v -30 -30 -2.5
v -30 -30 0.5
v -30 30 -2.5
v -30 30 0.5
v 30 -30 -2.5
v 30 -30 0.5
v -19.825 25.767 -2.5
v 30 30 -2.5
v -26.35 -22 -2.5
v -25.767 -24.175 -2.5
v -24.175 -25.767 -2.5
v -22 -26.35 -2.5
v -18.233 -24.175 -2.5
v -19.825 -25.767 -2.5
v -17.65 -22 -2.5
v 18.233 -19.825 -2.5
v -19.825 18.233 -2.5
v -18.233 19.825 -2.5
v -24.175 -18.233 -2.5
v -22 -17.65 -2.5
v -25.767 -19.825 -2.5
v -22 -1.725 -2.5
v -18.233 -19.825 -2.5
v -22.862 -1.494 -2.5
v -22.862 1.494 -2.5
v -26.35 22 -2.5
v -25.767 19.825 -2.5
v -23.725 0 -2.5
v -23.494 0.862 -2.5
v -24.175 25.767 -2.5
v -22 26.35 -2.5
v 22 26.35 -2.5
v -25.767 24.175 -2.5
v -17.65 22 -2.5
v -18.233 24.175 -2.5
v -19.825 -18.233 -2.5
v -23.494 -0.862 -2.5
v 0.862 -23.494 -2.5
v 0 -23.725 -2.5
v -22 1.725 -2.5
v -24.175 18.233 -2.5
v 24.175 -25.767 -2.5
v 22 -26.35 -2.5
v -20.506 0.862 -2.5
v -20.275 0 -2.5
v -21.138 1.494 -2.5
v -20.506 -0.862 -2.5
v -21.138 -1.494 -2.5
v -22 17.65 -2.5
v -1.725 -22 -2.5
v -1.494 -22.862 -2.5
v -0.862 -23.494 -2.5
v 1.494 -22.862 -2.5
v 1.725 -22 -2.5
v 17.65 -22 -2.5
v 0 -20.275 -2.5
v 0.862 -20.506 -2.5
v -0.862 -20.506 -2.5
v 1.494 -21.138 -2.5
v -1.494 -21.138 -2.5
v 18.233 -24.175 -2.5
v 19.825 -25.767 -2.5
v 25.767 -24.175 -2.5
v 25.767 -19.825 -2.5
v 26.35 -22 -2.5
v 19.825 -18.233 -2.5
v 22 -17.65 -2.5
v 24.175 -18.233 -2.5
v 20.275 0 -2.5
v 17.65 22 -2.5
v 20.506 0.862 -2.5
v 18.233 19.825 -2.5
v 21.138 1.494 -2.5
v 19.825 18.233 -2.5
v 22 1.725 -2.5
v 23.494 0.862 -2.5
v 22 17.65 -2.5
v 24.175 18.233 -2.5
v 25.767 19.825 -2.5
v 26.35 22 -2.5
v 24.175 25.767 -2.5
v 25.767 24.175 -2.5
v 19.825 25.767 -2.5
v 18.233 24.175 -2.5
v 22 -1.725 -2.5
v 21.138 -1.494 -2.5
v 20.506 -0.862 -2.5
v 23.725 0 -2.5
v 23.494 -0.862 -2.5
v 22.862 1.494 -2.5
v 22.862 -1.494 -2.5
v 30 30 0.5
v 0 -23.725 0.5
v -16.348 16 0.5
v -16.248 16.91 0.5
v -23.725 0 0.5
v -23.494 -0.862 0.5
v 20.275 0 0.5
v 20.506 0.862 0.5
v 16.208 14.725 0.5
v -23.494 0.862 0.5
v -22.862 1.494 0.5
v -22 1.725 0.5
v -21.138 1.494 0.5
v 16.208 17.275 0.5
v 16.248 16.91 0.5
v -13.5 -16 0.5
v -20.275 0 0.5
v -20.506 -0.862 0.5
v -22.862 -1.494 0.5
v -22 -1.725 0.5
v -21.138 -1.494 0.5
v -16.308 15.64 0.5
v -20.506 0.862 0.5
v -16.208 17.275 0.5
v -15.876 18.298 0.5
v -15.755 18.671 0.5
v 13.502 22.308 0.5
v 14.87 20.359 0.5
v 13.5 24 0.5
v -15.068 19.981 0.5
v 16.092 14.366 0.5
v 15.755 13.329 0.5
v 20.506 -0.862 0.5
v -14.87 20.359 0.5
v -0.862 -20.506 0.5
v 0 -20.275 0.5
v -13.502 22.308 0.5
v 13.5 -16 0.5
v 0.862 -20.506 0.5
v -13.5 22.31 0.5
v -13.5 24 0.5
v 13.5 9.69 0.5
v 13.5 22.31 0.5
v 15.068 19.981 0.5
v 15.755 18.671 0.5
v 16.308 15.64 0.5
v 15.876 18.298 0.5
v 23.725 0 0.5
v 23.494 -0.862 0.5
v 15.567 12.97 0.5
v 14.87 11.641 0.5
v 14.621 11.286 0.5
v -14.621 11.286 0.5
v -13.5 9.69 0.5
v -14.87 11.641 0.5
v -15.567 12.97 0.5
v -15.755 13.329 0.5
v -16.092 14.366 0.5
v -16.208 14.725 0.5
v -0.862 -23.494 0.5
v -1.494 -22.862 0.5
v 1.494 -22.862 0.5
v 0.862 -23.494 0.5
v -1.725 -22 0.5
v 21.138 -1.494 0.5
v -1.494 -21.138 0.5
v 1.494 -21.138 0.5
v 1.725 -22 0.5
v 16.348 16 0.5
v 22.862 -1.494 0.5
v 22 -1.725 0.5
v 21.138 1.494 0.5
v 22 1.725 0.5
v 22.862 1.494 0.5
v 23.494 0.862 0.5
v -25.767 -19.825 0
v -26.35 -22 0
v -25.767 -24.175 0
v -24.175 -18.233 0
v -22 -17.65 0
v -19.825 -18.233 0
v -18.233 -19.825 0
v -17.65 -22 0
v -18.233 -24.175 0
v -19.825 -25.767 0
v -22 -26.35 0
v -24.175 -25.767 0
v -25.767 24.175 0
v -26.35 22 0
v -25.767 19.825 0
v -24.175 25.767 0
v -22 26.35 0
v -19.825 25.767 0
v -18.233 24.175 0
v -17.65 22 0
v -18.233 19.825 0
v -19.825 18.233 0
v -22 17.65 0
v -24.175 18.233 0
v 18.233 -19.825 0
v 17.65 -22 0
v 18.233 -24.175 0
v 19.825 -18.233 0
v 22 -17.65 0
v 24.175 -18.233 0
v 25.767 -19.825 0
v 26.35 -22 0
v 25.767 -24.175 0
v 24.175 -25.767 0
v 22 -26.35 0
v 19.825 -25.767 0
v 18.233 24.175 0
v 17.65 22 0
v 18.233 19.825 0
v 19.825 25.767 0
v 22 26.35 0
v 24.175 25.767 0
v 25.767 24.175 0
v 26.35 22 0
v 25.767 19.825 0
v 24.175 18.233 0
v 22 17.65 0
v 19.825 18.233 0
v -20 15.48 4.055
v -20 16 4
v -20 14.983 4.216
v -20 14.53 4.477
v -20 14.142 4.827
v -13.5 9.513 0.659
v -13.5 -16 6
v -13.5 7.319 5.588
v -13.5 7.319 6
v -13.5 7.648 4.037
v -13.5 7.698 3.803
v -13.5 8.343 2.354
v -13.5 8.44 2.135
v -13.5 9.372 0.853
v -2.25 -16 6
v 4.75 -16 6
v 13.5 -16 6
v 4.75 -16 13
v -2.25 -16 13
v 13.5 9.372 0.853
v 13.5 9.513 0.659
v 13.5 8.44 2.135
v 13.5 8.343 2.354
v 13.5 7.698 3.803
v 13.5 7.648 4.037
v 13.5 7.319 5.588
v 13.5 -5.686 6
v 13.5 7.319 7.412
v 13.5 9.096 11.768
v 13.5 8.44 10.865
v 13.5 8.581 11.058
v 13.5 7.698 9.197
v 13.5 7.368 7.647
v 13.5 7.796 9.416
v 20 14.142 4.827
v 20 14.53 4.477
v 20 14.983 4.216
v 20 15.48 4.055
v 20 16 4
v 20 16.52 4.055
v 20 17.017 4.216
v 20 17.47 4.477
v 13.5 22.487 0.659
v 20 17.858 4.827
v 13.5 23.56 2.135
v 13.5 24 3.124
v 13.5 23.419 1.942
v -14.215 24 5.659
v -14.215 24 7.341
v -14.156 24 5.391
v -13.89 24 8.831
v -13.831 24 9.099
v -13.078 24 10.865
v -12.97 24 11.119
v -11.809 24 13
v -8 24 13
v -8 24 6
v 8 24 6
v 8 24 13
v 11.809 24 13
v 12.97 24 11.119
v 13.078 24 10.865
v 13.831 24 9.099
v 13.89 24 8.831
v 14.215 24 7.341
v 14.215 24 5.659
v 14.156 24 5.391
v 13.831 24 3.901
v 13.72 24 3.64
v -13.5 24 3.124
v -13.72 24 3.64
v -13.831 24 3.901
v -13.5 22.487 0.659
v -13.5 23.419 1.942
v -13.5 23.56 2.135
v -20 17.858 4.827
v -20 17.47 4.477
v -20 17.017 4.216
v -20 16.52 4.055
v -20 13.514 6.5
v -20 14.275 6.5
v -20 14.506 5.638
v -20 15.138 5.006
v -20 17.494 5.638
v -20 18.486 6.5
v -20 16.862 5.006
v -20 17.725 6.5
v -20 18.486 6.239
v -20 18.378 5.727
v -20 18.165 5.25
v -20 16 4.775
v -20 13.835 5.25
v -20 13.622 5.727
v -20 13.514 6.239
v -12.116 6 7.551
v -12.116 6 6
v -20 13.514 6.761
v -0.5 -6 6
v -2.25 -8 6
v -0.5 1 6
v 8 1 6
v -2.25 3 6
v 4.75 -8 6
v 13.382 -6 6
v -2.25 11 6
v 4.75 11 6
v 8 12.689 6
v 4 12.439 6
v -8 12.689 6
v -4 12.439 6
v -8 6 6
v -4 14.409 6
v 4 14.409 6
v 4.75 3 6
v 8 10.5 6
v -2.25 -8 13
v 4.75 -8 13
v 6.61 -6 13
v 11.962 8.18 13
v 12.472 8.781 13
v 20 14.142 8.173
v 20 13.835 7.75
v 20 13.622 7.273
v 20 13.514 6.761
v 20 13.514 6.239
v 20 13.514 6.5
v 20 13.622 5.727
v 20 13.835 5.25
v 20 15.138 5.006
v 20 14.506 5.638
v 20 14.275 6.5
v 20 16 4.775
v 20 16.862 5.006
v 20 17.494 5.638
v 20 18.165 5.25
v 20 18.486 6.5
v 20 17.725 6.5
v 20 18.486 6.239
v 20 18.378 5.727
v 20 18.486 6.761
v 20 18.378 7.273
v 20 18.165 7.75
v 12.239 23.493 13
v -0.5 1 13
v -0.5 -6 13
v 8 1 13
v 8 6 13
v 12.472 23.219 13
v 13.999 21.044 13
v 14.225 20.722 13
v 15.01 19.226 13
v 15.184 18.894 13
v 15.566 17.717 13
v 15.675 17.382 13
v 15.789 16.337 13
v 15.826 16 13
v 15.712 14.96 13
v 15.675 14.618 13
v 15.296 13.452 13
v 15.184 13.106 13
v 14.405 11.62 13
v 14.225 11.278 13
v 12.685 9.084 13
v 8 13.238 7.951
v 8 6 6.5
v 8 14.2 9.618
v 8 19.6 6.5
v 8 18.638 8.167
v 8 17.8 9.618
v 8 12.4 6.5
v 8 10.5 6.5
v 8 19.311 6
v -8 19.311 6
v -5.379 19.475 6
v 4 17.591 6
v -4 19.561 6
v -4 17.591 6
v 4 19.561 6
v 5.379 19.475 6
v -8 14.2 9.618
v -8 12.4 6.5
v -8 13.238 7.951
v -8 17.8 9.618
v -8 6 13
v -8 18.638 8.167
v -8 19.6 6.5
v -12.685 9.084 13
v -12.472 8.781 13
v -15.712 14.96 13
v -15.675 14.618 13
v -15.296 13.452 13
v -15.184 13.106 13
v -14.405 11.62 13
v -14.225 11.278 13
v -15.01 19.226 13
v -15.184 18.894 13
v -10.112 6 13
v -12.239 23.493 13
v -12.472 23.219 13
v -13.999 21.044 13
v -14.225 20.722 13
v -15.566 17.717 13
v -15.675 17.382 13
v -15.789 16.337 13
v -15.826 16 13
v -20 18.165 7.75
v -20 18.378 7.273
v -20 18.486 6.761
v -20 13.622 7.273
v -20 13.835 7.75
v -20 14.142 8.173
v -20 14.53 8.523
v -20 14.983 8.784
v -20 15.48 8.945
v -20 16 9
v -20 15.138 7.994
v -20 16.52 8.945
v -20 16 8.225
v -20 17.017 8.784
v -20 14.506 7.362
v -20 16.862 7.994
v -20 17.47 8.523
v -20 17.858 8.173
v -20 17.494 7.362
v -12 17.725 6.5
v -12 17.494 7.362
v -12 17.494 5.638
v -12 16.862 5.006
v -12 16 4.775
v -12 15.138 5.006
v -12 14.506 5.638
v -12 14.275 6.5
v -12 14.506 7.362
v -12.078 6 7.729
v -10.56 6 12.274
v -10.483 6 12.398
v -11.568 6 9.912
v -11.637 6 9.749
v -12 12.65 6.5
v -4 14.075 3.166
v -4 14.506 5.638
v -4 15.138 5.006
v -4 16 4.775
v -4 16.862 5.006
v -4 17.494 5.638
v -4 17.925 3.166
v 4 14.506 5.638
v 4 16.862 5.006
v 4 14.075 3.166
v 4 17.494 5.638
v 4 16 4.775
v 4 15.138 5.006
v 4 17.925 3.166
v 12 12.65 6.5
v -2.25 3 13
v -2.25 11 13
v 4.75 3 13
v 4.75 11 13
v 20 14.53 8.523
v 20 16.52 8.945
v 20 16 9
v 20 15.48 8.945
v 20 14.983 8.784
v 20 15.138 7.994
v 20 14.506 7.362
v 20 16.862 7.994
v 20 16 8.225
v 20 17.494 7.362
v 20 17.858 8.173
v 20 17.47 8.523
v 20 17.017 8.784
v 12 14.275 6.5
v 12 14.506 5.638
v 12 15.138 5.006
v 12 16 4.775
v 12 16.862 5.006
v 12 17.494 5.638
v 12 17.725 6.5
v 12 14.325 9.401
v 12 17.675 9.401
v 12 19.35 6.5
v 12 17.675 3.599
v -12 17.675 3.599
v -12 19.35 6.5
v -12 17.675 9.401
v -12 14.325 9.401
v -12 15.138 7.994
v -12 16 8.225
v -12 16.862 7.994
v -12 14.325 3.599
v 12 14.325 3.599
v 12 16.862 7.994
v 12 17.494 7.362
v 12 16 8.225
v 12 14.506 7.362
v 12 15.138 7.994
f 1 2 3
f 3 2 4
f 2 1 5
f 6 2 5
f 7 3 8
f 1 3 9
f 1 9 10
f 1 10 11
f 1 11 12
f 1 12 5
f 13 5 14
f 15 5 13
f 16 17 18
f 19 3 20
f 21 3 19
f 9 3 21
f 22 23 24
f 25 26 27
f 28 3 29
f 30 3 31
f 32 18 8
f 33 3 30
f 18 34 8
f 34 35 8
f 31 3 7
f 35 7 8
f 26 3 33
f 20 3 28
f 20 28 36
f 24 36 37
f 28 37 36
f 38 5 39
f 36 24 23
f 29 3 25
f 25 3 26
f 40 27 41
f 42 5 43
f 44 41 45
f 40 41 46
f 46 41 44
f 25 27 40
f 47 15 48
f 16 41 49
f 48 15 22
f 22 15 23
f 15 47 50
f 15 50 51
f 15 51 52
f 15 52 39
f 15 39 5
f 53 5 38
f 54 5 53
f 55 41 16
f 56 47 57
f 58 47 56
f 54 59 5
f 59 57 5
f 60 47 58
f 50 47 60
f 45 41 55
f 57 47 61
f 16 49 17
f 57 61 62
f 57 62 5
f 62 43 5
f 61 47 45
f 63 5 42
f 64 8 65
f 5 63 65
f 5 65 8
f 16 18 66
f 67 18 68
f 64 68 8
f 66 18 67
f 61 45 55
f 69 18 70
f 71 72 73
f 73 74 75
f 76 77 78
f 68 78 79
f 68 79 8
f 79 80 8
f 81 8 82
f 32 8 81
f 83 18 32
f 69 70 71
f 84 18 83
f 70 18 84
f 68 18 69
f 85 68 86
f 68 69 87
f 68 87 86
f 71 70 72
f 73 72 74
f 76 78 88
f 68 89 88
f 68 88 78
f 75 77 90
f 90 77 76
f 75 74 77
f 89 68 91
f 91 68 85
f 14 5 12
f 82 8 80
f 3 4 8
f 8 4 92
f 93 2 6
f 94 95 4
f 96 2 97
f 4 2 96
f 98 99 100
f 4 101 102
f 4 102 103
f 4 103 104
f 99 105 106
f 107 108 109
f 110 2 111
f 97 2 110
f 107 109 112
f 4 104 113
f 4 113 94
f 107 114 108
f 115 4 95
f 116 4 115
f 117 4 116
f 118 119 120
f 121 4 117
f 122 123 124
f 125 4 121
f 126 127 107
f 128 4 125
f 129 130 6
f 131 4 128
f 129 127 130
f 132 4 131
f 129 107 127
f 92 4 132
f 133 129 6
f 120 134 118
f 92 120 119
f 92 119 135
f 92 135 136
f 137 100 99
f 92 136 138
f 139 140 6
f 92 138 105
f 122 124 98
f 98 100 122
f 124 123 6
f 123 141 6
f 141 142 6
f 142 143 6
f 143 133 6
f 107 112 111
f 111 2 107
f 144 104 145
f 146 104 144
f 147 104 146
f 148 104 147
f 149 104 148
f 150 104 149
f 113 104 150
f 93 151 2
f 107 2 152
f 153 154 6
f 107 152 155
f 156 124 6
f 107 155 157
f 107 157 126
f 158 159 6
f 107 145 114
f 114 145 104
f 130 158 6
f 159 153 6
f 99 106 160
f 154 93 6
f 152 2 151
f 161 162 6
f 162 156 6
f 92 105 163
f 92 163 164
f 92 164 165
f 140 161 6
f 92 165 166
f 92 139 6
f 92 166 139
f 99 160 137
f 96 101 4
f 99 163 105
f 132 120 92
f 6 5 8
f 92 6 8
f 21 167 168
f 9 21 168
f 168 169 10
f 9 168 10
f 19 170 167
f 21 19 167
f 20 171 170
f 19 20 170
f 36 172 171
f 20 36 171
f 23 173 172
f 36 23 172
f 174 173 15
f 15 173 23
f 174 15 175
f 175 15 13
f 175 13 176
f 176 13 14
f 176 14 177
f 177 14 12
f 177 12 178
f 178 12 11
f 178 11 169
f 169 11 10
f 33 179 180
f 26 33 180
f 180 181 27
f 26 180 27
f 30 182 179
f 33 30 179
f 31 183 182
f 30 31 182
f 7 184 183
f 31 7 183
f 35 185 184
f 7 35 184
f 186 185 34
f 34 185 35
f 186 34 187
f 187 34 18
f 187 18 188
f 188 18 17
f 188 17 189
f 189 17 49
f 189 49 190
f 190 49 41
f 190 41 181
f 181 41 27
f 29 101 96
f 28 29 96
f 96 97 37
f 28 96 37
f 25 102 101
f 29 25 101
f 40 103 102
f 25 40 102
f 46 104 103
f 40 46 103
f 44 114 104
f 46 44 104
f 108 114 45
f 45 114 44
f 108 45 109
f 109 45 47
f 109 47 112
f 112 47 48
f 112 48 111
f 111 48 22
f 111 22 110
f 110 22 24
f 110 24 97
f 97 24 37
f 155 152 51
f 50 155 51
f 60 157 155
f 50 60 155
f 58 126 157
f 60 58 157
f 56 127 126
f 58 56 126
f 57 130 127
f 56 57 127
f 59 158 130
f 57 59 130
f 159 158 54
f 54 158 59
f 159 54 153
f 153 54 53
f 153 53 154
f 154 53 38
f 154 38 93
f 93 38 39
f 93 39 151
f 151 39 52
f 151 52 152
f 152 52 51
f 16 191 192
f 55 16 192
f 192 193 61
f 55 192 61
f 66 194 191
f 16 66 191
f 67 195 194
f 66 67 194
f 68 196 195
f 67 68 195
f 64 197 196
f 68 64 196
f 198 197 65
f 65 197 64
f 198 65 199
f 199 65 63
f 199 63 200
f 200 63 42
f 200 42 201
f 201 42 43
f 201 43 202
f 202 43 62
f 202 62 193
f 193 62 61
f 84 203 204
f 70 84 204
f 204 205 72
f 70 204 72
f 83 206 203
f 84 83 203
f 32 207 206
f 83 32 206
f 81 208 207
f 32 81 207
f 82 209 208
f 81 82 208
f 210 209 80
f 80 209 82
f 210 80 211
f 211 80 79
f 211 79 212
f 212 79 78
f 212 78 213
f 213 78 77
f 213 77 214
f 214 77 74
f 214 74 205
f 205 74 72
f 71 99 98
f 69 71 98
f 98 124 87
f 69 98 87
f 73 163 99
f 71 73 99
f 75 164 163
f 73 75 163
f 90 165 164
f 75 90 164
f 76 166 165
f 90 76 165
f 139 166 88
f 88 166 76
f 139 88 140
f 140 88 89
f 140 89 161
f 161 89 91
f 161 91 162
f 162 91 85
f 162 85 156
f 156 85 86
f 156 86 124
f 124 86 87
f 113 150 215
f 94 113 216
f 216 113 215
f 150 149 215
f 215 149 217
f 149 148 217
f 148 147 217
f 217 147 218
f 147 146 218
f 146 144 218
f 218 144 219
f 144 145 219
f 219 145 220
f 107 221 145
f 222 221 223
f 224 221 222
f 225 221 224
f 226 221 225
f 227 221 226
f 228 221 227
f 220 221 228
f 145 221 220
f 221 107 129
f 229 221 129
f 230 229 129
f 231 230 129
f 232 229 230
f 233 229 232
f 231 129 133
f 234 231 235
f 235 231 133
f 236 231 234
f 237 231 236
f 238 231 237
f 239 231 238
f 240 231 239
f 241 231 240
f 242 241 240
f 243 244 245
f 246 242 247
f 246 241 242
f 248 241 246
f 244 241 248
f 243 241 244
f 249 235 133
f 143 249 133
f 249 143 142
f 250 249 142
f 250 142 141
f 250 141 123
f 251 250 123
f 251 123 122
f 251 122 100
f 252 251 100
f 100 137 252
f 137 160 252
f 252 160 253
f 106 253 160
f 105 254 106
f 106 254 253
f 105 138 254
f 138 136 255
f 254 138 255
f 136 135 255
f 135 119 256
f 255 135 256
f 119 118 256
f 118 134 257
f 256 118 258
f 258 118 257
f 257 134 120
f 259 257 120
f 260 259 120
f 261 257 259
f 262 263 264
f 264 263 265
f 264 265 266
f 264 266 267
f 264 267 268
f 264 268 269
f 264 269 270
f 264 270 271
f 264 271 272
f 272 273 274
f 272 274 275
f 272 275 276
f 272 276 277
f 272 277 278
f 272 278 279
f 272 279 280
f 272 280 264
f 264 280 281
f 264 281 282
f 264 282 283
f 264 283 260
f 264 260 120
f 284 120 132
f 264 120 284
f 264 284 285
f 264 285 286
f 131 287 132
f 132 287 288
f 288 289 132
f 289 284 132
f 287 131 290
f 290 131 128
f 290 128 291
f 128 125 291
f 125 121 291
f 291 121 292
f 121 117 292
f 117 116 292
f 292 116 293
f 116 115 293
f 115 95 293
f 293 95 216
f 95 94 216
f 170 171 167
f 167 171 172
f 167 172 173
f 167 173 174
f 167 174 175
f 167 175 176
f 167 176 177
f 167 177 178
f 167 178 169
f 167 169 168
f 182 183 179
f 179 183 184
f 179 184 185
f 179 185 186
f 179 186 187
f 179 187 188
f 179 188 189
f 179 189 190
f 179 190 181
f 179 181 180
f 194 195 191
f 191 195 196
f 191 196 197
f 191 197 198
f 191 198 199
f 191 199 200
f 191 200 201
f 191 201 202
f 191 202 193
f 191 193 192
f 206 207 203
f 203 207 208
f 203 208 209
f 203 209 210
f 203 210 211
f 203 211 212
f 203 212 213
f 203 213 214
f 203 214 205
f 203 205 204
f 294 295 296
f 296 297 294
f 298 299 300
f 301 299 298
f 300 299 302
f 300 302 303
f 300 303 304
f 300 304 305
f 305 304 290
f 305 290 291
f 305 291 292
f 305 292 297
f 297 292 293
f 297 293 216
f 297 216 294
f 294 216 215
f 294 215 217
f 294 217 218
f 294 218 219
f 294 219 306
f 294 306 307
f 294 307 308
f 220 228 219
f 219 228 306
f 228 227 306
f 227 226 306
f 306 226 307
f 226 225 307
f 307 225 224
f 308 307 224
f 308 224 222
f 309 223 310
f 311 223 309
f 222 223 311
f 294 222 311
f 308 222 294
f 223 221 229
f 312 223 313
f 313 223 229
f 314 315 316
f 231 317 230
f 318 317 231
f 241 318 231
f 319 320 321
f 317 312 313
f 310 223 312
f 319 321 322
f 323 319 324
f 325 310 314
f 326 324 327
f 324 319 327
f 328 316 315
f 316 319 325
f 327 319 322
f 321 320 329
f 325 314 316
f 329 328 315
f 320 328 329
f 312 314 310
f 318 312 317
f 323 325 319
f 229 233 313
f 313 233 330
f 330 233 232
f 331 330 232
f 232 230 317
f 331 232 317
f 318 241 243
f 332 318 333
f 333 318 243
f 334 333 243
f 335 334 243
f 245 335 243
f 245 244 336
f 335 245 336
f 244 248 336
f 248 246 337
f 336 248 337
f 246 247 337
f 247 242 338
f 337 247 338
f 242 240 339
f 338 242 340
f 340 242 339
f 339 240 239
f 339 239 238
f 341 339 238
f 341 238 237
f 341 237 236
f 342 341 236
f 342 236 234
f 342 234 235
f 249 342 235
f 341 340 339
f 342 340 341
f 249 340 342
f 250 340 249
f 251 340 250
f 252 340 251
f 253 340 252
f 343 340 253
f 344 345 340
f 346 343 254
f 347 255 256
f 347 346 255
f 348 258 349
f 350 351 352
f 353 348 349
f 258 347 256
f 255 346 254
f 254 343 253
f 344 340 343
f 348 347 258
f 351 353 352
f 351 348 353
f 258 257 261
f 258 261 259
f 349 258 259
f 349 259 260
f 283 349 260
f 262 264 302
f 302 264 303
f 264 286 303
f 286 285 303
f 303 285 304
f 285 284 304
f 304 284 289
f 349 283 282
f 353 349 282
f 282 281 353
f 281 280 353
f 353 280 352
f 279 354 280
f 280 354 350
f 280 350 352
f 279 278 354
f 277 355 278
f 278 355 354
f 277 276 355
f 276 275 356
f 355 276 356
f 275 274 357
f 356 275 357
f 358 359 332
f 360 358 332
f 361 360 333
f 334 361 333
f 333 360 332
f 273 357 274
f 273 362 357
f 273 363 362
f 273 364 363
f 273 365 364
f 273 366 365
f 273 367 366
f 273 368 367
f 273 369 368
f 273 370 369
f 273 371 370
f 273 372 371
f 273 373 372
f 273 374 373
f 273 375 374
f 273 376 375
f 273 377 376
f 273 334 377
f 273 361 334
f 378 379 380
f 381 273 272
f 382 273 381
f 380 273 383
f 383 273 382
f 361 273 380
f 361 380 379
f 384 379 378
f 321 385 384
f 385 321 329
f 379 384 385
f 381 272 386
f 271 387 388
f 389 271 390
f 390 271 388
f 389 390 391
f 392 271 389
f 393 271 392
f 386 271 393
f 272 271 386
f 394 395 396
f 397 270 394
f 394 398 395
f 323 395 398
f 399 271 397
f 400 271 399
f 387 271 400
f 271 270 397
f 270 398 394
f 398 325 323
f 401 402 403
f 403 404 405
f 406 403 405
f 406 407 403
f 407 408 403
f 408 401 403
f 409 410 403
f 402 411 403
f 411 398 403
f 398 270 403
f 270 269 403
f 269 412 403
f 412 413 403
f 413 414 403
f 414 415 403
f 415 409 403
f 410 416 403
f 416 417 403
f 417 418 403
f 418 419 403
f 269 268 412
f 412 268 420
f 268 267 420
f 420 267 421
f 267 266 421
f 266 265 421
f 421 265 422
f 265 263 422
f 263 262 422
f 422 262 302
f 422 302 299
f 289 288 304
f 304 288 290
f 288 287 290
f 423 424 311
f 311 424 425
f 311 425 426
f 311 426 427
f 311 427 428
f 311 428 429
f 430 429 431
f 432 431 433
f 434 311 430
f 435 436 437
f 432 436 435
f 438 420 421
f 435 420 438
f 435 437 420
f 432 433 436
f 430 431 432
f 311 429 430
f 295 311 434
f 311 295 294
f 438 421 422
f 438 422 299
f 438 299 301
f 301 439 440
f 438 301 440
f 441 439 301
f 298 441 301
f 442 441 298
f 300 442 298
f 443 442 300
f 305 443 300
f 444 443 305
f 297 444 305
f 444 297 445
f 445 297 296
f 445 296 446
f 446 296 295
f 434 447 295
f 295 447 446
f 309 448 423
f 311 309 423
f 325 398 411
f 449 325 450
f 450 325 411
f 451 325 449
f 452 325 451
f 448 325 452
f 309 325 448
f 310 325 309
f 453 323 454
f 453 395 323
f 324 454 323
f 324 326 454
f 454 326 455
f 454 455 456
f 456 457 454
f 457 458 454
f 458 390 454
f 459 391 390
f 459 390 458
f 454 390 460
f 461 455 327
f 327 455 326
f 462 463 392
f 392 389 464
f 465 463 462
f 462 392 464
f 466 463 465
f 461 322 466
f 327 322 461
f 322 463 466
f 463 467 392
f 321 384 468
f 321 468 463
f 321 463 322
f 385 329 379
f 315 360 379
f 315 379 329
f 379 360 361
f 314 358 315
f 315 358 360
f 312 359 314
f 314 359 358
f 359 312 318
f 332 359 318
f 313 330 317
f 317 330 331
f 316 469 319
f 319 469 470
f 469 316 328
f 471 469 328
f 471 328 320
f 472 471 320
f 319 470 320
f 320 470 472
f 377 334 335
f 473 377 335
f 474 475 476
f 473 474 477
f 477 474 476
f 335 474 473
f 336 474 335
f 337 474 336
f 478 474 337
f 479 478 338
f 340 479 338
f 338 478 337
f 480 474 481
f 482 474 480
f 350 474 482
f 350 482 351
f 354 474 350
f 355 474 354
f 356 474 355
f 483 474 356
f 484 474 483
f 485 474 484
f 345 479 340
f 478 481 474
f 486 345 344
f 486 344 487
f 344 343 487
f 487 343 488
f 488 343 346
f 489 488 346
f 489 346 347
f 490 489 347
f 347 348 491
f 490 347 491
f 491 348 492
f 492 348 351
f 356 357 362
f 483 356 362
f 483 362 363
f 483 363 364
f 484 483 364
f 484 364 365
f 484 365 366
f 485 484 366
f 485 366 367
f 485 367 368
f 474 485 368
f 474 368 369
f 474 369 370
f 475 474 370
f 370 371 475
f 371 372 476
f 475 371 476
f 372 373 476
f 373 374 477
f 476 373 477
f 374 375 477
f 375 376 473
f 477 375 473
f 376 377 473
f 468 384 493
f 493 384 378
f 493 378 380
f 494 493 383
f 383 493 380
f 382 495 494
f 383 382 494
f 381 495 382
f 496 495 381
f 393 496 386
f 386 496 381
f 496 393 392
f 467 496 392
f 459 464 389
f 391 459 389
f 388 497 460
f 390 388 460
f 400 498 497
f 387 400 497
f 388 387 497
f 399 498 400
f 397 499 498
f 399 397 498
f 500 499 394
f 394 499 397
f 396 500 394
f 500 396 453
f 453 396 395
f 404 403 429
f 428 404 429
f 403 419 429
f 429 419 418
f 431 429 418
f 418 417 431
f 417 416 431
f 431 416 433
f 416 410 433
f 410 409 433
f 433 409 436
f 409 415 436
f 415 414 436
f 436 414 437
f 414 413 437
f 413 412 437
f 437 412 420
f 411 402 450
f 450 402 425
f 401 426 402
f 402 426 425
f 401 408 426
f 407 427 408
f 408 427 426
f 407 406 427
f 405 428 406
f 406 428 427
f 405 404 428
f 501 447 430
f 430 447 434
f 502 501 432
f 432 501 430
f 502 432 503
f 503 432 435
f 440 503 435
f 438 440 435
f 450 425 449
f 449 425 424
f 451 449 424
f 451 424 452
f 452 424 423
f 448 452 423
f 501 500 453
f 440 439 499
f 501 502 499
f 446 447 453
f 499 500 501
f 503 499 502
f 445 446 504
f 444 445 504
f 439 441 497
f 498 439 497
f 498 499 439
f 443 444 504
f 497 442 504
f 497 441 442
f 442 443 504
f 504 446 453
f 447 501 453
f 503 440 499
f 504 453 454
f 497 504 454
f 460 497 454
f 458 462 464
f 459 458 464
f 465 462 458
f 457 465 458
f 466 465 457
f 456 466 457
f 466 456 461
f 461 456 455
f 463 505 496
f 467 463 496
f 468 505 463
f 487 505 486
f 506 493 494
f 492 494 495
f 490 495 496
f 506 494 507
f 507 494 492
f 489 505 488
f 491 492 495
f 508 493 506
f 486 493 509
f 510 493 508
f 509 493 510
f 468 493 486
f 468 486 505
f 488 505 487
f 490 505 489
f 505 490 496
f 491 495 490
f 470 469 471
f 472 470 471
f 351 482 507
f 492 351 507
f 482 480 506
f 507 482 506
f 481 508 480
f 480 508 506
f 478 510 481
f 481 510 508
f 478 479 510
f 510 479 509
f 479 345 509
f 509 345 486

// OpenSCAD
// file: configuration.scad
// Increase this if your slicer or printer make holes too tight.
extra_radius = 0.1;

// OD = outside diameter, corner to corner.
m3_nut_od = 6.1;
m3_nut_radius = m3_nut_od/2 + 0.2 + extra_radius;

// Major diameter of metric 3mm thread.
m3_major = 2.85;
m3_radius = m3_major/2 + extra_radius;
m3_wide_radius = m3_major/2 + extra_radius + 0.2;

// OD = outside diameter, corner to corner.
m5_nut_od = 8.1;
m5_nut_radius = m5_nut_od/2 + 0.2 + extra_radius;

// Major diameter of metric 5mm thread.
m5_major = 4.85;
m5_radius = m5_major/2 + extra_radius;
m5_wide_radius = m5_major/2 + extra_radius + 0.2;

// NEMA17 stepper motors.
motor_shaft_diameter = 5;
motor_shaft_radius = motor_shaft_diameter/2 + extra_radius;

// Frame brackets. M3x8mm screws work best with 3.6 mm brackets.
thickness = 3.6;

// OpenBeam or Misumi. Currently only 15x15 mm, but there is a plan
// to make models more parametric and allow 20x20 mm in the future.
extrusion = 15;
// main file
include <configuration.scad>;

separation = 40;
thickness = 6;

horn_thickness = 13;
horn_x = 8;

belt_width = 5;
belt_x = 5.6;
belt_z = 7;

module carriage() {
  // Timing belt (up and down).
  translate([-belt_x, 0, belt_z + belt_width/2]) %
    cube([1.7, 100, belt_width], center=true);
  translate([belt_x, 0, belt_z + belt_width/2]) %
    cube([1.7, 100, belt_width], center=true);
  difference() {
    union() {
      // base.
      translate([0, 0, -1])
          cube([60, 60, thickness/2], center=true);
    
      // Main body.
      translate([0, 4, thickness/2])
        cube([27, 40, thickness], center=true);
      // Ball joint mount horns.
      for (x = [-1, 1]) {
        scale([x, 1, 1]) intersection() {
          translate([0, 15, horn_thickness/2])
            cube([separation, 18, horn_thickness], center=true);
          translate([horn_x, 16, horn_thickness/2]) rotate([0, 90, 0])
            cylinder(r1=14, r2=2.5, h=separation/2-horn_x);
        }
      
      }
      // Belt clamps.
      difference() {
        union() {
          translate([6.5, -2.5, horn_thickness/2+1])
            cube([14, 7, horn_thickness-2], center=true);
          translate([10.75, 2.5, horn_thickness/2+1])
            cube([5.5, 16, horn_thickness-2], center=true);
        }
        // Avoid touching diagonal push rods (carbon tube).
        translate([20, -10, 12.5]) rotate([35, 35, 30])
          cube([40, 40, 20], center=true);
      }
      for (y = [-12, 7]) {
        translate([1.25, y, horn_thickness/2+1])
          cube([7, 8, horn_thickness-2], center=true);
      }
    }
    
    // Screws for linear slider.
    
    translate([22, 0, thickness])
       cylinder(r=m3_wide_radius, h=30, center=true, $fn=12);
    translate([-22, 0, thickness])
       cylinder(r=m3_wide_radius, h=30, center=true, $fn=12);
    translate([0, -22, thickness])
       cylinder(r=m3_wide_radius, h=30, center=true, $fn=12);


 
    translate([22, -22, thickness-10])
       cylinder(r=m5_nut_radius, h=8, center=true, $fn=12);
    translate([-22, 22, thickness-10])
       cylinder(r=m5_nut_radius, h=8, center=true, $fn=12);
    translate([22, 22, thickness-10])
       cylinder(r=m5_nut_radius, h=8, center=true, $fn=12);
    translate([-22,  -22, thickness-10])
       cylinder(r=m5_nut_radius, h=8, center=true, $fn=12);
 
    // Screws for ball joints.
    translate([0, 16, horn_thickness/2]) rotate([0, 90, 0]) #
      cylinder(r=m3_wide_radius, h=60, center=true, $fn=12);
    // Lock nuts for ball joints.
    for (x = [-1, 1]) {
      scale([x, 1, 1]) intersection() {
        translate([horn_x, 16, horn_thickness/2]) rotate([90, 0, -90])
          cylinder(r1=m3_nut_radius, r2=m3_nut_radius+0.5, h=8,
                   center=true, $fn=6);
      }
    }
  }
}

carriage();
